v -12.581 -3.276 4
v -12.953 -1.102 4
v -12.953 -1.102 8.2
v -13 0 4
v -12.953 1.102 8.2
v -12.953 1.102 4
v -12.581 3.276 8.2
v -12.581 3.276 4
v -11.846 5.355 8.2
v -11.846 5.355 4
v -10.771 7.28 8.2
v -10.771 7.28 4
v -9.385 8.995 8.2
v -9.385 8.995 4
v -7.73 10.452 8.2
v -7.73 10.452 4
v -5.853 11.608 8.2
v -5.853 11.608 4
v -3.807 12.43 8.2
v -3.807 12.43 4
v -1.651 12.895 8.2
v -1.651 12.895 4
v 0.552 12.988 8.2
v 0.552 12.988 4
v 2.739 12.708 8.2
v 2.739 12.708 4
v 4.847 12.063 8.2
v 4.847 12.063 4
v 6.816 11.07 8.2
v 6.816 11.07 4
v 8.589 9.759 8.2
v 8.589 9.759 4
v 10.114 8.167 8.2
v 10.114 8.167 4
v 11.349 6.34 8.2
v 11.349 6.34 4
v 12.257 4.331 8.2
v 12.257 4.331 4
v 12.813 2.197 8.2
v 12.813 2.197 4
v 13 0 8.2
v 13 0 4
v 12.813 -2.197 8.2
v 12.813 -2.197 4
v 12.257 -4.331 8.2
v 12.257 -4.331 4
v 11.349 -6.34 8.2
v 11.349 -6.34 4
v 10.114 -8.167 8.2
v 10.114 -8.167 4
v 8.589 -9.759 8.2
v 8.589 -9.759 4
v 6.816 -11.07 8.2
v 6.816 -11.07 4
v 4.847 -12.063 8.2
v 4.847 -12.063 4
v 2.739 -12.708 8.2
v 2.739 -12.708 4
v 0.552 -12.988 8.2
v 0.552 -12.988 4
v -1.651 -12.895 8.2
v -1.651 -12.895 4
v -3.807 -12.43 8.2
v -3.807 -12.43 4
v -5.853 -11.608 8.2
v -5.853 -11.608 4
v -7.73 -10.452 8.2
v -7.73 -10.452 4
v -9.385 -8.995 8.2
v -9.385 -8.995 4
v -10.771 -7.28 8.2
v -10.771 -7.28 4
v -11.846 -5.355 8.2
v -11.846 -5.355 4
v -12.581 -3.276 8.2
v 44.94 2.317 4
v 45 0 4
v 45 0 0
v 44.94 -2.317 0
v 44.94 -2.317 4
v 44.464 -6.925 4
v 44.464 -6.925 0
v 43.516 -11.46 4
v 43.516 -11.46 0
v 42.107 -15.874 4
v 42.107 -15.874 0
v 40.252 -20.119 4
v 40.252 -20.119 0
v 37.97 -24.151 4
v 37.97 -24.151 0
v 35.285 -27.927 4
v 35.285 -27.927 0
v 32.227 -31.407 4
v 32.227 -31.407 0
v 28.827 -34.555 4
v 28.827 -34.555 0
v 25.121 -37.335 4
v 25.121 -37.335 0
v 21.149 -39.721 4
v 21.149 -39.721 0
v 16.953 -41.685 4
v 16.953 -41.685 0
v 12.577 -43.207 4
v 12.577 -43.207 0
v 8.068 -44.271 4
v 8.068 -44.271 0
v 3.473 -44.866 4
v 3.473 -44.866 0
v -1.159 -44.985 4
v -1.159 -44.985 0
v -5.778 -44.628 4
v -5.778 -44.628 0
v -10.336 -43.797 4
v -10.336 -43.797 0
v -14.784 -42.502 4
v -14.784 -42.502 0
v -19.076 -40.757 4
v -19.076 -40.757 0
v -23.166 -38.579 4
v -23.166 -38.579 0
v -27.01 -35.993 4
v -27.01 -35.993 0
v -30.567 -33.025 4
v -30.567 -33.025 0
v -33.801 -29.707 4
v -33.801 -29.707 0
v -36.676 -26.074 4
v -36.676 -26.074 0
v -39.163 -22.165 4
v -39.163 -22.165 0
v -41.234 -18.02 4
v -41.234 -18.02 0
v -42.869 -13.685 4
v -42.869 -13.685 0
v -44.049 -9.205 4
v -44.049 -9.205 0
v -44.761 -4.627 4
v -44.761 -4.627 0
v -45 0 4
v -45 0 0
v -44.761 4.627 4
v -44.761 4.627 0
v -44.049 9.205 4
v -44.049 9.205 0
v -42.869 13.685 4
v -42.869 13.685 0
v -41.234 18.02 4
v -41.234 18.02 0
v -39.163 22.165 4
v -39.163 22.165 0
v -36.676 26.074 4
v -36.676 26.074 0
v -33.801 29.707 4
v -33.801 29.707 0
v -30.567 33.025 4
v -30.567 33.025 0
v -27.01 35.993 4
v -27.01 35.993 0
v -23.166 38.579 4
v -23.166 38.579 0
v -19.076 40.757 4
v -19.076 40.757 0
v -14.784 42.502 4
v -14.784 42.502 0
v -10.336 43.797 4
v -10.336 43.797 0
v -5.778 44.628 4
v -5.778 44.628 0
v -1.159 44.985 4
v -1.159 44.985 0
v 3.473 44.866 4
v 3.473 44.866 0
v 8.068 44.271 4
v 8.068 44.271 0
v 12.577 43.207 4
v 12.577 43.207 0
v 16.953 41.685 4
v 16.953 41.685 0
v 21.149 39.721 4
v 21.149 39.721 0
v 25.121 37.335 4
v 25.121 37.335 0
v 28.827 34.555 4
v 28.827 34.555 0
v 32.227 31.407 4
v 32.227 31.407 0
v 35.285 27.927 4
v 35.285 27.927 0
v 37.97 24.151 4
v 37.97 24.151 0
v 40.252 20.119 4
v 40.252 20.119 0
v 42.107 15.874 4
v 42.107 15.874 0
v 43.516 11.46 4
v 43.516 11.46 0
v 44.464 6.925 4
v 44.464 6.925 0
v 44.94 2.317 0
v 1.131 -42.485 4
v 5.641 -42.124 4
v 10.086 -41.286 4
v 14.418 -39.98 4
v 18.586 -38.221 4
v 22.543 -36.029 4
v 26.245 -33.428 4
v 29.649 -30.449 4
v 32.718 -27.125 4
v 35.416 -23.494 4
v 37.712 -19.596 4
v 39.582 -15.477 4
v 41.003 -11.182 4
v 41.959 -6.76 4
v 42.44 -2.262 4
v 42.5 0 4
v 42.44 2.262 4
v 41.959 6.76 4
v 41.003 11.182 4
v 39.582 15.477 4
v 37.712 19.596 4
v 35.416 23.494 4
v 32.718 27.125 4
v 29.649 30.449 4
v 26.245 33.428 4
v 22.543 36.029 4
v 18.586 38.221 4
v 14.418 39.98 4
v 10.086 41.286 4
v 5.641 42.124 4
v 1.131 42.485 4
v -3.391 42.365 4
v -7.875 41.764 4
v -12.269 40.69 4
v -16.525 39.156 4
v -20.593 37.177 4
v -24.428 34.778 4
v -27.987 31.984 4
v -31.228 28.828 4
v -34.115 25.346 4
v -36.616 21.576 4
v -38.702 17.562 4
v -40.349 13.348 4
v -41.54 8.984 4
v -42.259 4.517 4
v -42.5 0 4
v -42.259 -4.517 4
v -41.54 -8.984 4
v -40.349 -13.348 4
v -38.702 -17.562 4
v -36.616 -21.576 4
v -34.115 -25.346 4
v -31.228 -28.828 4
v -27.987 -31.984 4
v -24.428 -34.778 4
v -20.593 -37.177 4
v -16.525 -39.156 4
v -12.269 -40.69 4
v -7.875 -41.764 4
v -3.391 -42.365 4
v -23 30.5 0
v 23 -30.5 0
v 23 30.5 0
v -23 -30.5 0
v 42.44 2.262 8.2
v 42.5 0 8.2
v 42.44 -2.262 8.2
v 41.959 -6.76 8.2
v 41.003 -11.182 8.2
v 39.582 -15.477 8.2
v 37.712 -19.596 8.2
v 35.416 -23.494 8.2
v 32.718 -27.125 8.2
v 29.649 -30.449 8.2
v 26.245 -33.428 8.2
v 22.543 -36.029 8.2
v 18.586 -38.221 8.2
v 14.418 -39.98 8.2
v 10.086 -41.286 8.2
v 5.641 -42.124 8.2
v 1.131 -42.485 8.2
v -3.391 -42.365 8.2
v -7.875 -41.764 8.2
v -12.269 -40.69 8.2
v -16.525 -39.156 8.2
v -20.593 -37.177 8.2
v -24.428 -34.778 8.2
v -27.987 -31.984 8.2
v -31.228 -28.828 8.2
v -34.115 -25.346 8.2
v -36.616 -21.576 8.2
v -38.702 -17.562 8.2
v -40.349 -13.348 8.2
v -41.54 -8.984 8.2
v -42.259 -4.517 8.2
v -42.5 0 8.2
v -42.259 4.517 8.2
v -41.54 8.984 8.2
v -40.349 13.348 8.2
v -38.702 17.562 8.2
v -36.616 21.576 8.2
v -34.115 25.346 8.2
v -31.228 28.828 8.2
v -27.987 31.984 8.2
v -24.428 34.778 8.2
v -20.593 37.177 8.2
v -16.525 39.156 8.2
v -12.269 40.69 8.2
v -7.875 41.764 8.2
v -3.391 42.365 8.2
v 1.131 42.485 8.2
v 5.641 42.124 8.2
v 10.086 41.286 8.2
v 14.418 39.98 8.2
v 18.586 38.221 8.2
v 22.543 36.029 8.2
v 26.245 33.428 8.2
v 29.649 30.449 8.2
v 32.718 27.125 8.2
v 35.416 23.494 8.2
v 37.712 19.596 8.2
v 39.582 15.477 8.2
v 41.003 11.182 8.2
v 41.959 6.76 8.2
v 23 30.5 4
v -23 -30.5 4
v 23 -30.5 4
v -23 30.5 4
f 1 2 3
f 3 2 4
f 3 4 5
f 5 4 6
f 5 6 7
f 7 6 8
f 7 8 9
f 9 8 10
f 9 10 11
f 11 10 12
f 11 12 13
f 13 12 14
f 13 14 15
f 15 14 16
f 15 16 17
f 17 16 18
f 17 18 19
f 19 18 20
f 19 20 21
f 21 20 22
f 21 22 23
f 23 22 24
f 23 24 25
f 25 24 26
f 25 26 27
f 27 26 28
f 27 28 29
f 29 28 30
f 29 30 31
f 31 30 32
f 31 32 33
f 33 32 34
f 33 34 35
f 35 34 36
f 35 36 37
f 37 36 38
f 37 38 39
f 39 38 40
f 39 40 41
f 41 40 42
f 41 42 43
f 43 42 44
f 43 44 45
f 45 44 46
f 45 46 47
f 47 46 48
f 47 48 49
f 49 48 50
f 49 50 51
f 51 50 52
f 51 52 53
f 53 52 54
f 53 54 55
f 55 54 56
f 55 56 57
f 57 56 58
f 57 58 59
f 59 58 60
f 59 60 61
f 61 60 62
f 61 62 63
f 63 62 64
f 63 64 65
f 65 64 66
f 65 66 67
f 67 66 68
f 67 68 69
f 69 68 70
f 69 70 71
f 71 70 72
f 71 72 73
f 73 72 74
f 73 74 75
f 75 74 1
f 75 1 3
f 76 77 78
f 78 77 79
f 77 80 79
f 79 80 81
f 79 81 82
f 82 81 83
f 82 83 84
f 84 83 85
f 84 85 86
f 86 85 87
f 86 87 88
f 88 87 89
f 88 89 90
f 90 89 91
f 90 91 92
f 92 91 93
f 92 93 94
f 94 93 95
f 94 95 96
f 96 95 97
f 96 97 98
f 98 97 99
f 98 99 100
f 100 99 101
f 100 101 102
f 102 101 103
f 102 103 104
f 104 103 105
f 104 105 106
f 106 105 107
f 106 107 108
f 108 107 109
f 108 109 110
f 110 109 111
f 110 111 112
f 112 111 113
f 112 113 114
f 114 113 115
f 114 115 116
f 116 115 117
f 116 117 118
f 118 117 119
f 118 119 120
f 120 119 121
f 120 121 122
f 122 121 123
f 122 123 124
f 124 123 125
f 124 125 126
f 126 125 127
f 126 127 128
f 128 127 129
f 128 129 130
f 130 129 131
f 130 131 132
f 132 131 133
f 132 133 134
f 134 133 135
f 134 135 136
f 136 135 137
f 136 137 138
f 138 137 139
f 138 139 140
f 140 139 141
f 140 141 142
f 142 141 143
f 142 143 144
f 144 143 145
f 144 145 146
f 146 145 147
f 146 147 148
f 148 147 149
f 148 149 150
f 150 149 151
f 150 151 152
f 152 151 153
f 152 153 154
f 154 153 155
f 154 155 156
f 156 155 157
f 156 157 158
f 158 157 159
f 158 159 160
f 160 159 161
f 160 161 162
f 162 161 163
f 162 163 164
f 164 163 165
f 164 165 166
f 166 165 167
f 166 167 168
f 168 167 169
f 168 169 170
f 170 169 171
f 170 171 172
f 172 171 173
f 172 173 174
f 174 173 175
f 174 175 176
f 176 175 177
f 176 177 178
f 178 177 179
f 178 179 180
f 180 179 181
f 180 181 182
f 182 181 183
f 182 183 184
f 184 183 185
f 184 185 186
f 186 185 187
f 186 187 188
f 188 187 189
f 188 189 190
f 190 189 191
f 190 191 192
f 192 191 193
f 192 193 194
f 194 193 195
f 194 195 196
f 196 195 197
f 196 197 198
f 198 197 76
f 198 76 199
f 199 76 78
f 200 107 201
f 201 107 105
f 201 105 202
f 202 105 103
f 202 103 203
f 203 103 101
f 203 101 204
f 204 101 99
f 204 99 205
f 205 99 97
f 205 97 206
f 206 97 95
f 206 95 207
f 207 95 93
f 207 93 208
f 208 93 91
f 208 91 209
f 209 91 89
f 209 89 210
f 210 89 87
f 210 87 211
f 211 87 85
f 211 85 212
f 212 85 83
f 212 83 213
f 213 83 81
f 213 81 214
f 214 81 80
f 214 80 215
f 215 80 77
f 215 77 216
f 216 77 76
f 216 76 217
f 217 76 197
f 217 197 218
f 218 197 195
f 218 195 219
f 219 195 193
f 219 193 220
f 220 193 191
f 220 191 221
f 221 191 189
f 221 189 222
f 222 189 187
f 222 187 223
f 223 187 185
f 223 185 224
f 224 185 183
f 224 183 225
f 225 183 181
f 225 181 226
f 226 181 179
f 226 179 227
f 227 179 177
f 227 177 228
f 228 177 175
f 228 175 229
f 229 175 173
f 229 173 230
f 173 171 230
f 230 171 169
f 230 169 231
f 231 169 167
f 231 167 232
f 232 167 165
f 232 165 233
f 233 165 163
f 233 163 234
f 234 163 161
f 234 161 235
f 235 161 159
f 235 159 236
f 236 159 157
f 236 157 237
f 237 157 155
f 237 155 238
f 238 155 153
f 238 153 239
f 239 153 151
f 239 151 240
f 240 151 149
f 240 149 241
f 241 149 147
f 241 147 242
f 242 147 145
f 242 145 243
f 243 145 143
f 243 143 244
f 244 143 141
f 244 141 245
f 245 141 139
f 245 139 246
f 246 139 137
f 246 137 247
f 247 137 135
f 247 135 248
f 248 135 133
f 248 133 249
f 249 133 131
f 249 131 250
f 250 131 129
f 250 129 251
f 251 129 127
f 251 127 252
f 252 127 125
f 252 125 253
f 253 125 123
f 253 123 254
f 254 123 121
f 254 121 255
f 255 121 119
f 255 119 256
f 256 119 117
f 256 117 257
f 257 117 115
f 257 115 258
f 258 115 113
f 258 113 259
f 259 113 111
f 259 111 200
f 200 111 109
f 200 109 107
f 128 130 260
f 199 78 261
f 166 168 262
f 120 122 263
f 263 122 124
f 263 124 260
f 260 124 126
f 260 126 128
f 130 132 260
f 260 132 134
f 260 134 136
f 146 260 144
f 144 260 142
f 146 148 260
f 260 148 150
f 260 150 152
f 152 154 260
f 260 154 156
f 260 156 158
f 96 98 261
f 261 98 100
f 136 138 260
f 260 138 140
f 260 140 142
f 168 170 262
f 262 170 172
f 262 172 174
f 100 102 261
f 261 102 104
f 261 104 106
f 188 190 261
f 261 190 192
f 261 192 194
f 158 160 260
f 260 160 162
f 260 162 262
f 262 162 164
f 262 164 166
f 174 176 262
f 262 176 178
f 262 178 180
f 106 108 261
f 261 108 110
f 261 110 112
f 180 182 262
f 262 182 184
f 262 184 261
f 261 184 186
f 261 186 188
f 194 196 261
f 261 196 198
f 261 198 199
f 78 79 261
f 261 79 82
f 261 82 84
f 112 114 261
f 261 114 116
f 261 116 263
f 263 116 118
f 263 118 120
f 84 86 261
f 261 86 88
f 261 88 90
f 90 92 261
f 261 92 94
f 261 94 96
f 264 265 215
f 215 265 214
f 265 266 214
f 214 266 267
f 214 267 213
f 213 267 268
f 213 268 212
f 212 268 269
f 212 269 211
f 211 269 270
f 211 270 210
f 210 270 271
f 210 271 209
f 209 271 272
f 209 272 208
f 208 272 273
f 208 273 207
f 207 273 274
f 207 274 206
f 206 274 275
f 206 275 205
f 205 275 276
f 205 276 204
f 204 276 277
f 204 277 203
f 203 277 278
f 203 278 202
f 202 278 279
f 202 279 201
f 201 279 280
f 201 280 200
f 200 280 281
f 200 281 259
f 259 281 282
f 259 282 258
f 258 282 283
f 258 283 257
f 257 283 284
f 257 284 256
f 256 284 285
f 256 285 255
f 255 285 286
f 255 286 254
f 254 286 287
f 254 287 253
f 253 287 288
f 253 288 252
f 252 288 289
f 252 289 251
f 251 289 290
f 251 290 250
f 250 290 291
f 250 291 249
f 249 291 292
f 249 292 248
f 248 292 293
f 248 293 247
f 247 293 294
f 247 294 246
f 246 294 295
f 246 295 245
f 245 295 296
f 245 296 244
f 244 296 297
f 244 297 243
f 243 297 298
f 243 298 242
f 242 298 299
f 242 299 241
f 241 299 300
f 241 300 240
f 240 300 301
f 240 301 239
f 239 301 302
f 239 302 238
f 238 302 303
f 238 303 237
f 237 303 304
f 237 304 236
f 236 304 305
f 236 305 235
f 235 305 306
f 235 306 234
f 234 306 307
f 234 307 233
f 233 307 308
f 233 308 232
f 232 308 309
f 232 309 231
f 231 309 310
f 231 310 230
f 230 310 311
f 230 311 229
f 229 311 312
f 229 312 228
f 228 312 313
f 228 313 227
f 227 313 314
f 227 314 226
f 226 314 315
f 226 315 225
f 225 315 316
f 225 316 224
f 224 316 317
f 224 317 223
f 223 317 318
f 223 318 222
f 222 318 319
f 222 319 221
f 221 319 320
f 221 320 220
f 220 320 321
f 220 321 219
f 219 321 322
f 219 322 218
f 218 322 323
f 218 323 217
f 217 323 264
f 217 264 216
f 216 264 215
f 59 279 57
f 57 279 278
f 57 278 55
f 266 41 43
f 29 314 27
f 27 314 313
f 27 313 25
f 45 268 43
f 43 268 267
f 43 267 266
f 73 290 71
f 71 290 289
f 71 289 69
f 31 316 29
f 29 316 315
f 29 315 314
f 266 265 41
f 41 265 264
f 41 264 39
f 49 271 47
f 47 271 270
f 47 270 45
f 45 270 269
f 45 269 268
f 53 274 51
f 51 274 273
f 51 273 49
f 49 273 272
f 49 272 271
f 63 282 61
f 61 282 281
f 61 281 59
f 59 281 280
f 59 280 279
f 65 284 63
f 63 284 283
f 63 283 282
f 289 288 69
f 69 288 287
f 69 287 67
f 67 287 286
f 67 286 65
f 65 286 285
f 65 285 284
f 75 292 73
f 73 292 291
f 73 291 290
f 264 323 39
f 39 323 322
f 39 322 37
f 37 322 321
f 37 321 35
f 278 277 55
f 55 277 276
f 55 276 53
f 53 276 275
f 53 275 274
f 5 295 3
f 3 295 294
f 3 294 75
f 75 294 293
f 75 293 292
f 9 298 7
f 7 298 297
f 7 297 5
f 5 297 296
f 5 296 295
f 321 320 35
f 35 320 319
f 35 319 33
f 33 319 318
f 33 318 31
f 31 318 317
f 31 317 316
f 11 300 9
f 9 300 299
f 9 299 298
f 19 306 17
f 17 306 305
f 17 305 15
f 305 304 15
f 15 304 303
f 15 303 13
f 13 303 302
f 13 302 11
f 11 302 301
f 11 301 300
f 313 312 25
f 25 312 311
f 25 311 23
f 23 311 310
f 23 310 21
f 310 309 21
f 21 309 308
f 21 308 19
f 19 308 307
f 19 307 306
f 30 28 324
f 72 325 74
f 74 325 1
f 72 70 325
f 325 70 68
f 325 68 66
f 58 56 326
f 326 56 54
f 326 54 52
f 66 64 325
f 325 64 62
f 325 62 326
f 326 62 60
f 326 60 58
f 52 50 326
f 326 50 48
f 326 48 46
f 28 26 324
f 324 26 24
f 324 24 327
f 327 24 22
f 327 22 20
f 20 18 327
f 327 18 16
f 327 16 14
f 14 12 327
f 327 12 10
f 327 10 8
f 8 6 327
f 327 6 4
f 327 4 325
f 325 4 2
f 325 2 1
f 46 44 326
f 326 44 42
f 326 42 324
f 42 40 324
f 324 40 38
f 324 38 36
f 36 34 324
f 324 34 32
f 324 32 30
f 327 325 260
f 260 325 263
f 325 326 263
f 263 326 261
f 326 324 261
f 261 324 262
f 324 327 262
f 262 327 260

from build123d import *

# Parameters (mm, degrees)
SKETCH1_R           = 45
BOSS_EXTRUDE1_DEPTH = 4
SKETCH2_R           = 42.5
BOSS_EXTRUDE2_DEPTH = 4.2
SKETCH4_R           = 13
CUT_EXTRUDE1_DEPTH  = 65.165722937
SKETCH5_W           = 46
SKETCH5_H           = 61
CUT_EXTRUDE2_DEPTH  = 4


with BuildPart() as part:
    # Sketch1 → Boss-Extrude1 (new body)
    with BuildSketch(Plane.XY):
        Circle(SKETCH1_R)
    extrude(amount=BOSS_EXTRUDE1_DEPTH)

    # Sketch2 → Boss-Extrude2 (add)
    with BuildSketch(Plane.XY.offset(4)):
        Circle(SKETCH2_R)
    extrude(amount=BOSS_EXTRUDE2_DEPTH)

    # Sketch4 → Cut-Extrude1 (cut, through all)
    with BuildSketch(Plane.XY.offset(8.2)):
        Circle(SKETCH4_R)
    extrude(amount=-CUT_EXTRUDE1_DEPTH, mode=Mode.SUBTRACT)

    # Sketch5 → Cut-Extrude2 (cut)
    with BuildSketch(Plane(origin=(0, 0, 0), x_dir=(-1, 0, 0), z_dir=(0, 0, -1))):
        Rectangle(SKETCH5_W, SKETCH5_H)
    extrude(amount=-CUT_EXTRUDE2_DEPTH, mode=Mode.SUBTRACT)


solid = part.part
